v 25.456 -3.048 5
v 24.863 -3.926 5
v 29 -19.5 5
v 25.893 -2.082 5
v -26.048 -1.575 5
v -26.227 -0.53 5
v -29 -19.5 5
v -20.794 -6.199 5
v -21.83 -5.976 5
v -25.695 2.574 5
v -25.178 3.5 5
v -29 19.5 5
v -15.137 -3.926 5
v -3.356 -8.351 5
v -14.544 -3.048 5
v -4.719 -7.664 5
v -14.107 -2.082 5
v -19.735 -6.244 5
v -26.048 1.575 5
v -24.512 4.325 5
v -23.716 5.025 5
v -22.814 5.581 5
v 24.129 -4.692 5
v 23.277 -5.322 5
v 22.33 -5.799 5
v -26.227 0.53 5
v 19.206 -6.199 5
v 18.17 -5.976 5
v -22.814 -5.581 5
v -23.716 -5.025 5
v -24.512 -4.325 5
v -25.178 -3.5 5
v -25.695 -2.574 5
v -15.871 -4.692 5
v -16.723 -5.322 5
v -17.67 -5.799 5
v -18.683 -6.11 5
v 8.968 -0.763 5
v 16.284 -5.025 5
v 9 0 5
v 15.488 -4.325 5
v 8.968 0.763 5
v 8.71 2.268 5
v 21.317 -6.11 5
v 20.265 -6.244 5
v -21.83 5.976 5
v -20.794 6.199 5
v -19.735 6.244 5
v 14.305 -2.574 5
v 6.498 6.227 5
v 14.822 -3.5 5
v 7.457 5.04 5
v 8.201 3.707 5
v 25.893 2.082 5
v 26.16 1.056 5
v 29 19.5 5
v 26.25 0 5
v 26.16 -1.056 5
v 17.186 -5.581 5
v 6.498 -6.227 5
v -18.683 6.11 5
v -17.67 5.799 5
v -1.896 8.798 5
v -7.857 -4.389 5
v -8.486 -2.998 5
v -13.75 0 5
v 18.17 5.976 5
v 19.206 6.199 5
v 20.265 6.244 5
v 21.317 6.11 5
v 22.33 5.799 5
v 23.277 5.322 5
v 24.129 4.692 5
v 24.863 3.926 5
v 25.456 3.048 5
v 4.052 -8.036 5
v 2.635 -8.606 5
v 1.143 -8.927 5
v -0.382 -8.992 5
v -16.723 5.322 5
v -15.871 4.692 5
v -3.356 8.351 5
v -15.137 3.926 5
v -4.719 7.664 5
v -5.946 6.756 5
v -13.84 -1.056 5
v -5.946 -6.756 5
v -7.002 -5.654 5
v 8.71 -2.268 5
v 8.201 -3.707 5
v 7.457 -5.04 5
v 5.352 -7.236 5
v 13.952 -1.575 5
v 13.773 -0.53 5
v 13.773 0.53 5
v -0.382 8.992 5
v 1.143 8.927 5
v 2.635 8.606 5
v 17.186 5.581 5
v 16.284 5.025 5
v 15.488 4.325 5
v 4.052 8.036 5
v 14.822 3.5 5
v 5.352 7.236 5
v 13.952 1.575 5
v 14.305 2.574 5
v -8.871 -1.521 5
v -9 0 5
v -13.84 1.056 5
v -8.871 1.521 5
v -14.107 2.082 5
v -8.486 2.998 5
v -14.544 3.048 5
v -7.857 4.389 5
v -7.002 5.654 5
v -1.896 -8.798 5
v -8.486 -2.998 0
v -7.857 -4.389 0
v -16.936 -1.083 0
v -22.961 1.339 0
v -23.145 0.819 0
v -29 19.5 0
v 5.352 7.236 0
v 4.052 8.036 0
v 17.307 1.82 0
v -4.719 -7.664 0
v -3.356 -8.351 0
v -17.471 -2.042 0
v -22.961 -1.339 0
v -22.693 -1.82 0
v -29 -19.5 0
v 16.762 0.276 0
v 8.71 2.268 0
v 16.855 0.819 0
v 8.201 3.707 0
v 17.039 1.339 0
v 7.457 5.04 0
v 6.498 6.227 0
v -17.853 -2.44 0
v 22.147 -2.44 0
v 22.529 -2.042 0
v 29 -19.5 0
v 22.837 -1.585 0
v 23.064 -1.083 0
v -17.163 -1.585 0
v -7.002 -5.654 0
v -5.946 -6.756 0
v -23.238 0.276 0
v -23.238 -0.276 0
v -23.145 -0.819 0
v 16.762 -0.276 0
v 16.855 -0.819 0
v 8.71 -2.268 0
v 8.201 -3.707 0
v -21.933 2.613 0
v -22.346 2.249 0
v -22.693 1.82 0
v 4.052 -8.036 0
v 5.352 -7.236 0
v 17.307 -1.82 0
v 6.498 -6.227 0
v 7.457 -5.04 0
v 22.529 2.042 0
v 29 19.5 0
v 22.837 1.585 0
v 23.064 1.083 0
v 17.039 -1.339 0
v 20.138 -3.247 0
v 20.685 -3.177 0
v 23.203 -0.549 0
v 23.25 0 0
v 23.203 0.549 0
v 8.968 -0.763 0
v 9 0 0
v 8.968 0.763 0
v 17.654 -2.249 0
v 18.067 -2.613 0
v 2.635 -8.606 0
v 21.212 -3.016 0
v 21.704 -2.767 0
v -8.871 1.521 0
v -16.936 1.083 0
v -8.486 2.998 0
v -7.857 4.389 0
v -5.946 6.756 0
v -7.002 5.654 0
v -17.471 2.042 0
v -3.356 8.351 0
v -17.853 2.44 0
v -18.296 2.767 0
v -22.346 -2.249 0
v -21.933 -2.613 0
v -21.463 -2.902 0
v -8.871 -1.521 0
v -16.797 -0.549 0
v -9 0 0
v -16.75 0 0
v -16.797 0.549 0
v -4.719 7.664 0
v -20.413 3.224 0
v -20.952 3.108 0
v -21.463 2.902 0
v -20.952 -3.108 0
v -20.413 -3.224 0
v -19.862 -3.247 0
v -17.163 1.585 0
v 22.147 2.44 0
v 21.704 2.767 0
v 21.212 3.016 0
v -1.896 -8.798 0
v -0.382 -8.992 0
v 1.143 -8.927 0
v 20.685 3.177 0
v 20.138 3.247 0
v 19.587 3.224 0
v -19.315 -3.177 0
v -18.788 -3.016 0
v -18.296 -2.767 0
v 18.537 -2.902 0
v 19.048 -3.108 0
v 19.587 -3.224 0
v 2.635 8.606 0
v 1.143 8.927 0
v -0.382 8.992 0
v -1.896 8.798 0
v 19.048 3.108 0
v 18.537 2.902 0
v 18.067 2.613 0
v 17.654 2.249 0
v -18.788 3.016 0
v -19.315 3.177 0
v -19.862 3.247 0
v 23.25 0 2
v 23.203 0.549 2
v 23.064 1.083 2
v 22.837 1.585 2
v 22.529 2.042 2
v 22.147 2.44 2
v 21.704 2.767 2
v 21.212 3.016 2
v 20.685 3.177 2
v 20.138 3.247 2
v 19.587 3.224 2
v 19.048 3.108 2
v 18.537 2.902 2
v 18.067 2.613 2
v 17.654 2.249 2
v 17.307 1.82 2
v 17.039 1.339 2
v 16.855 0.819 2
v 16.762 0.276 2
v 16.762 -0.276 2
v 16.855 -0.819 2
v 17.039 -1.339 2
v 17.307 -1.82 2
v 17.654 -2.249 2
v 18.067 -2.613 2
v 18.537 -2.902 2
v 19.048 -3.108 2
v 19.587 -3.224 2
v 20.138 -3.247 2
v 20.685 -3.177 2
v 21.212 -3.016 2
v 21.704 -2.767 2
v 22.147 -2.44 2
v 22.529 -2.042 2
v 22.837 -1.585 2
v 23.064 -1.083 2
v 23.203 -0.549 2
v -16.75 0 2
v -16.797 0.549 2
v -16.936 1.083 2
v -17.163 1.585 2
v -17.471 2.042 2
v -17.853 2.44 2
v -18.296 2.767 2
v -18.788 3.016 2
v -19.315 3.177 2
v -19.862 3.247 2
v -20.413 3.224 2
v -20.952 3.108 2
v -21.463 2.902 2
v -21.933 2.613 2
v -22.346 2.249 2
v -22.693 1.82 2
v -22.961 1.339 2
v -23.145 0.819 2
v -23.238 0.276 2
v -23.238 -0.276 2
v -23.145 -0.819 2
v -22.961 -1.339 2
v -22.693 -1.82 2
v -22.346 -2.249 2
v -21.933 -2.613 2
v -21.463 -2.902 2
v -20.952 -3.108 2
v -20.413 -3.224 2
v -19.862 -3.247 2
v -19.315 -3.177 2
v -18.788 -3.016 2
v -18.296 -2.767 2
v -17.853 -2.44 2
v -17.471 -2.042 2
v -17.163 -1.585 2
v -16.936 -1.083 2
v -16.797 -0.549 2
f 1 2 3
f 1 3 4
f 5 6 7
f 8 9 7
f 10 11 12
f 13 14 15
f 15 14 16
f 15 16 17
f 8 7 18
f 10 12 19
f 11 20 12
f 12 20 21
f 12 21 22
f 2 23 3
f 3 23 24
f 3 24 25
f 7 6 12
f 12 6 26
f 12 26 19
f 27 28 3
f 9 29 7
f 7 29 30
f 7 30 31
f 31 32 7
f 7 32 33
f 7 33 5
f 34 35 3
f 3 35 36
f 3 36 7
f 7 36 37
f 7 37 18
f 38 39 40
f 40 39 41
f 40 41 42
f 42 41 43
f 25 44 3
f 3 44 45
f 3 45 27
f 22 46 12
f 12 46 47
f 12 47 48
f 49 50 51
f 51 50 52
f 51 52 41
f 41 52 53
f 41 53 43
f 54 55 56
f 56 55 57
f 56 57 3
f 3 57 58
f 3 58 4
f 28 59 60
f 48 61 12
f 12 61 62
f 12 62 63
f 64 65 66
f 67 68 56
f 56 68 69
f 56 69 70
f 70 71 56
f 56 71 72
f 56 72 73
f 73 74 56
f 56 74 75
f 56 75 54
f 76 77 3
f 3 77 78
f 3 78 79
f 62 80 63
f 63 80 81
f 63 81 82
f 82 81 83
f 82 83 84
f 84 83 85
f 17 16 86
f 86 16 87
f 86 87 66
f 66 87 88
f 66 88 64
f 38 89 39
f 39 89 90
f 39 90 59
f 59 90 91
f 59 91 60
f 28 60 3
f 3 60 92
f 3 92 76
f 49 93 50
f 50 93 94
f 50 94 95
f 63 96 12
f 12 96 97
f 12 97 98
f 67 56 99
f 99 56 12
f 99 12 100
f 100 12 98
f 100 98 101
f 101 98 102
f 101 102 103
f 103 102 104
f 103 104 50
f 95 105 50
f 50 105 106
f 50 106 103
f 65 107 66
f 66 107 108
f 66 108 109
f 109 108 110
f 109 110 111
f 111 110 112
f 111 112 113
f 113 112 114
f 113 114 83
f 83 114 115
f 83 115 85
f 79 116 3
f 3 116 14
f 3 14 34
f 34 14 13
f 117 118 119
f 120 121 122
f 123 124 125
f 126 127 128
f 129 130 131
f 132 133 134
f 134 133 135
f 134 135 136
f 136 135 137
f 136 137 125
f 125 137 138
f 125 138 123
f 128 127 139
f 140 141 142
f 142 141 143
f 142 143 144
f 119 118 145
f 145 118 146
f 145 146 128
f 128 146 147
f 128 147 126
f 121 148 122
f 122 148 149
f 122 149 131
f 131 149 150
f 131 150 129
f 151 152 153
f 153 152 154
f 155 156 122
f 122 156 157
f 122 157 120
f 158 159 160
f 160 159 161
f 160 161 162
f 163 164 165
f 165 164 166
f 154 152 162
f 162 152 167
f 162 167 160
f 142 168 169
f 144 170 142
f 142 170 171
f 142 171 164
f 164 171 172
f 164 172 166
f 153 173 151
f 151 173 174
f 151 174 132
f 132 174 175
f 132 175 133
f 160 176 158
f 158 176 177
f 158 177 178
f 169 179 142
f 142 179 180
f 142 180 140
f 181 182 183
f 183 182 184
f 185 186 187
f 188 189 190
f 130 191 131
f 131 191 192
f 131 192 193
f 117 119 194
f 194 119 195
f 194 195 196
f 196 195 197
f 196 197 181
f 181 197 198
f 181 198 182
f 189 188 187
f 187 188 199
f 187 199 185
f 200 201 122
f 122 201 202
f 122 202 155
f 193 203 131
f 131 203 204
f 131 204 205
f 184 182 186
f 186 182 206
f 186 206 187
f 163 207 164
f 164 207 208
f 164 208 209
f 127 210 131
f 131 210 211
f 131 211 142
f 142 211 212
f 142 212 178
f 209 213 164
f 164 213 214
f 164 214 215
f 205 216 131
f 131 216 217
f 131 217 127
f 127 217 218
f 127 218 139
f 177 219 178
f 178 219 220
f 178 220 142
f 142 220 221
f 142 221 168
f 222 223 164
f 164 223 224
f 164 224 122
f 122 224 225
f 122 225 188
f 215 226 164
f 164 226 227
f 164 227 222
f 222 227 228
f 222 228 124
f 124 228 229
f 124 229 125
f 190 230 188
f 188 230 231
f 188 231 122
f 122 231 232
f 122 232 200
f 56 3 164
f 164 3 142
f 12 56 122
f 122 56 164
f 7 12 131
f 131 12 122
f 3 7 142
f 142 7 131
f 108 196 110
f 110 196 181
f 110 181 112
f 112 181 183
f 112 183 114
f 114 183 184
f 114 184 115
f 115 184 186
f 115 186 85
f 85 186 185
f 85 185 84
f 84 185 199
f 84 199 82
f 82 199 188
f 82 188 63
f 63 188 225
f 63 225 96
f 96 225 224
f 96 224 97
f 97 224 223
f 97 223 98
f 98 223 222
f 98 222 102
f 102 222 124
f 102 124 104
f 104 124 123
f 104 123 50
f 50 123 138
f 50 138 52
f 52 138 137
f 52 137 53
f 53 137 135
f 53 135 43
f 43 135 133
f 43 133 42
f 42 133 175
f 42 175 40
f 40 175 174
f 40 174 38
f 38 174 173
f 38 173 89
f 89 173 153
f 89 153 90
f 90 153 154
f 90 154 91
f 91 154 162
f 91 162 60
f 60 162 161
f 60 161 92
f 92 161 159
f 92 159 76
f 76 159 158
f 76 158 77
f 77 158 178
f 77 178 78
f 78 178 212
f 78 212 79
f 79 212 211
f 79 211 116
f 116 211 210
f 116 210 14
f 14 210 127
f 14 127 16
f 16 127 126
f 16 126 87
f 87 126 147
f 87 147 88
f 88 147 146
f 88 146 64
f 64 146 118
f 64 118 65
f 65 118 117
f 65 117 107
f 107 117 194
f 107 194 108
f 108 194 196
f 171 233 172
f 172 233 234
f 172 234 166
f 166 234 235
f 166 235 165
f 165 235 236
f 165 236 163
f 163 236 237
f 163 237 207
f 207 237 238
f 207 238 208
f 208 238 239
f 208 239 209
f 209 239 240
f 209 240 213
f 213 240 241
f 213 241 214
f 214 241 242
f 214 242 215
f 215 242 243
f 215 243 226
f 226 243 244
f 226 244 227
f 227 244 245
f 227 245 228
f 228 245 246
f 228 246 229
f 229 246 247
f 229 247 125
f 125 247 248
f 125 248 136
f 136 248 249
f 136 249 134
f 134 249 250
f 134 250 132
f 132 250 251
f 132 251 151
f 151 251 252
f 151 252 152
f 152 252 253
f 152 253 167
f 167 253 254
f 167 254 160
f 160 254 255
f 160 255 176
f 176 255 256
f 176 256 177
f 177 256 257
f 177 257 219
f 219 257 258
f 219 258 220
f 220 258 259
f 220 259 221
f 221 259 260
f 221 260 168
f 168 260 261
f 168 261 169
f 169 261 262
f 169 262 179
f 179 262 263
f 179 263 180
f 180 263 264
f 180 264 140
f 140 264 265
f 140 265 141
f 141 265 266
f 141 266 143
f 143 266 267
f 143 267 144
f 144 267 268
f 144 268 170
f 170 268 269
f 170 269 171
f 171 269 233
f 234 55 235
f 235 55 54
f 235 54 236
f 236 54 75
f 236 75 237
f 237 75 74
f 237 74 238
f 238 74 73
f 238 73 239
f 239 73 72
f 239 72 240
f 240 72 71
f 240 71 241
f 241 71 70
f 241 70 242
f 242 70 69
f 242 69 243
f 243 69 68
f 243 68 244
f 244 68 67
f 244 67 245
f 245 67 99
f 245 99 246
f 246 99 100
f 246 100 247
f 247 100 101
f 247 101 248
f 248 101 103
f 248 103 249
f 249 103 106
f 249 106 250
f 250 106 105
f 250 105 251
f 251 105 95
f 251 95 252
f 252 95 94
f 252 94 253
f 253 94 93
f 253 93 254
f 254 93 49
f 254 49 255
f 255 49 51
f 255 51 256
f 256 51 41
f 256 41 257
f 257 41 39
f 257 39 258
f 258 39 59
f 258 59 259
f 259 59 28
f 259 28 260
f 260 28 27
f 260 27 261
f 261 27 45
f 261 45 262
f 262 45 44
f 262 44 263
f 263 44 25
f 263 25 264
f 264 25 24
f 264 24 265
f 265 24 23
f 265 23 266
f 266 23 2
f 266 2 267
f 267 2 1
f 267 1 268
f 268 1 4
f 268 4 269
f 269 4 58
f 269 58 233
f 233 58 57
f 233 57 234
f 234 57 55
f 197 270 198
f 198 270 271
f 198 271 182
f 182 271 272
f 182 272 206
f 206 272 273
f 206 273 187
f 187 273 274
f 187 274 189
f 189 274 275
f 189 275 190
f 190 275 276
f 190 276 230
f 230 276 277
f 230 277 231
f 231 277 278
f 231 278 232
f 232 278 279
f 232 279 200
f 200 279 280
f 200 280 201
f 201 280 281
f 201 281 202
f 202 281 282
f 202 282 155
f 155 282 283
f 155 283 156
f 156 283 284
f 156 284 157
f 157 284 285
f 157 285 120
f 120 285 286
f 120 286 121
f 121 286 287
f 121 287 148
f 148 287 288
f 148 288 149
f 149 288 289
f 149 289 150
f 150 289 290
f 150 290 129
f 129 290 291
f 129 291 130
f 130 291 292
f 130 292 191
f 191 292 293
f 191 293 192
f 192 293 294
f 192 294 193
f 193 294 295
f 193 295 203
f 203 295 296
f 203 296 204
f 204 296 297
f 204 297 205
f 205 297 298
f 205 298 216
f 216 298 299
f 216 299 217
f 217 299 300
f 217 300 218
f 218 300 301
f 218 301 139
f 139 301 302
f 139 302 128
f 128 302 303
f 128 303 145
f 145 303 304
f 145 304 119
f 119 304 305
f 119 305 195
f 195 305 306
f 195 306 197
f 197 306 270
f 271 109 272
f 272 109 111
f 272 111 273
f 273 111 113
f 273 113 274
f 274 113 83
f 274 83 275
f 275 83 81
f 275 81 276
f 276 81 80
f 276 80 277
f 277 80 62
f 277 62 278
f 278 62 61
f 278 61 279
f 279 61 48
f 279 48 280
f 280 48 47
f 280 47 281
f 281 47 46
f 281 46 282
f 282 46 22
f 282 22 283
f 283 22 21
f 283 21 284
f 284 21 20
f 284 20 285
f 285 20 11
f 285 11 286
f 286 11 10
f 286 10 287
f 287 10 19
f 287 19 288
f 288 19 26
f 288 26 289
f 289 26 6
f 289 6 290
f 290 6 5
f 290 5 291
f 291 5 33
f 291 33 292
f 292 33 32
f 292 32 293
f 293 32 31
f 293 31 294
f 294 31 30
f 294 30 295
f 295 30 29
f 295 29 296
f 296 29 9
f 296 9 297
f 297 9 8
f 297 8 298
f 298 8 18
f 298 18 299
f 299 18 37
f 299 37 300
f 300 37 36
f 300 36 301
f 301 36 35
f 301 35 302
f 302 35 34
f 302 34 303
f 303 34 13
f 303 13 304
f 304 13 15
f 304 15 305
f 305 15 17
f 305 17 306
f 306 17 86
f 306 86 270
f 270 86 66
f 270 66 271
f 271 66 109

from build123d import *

# Parameters (mm, degrees)
ESQUISSE1_W                = 58
ESQUISSE1_H                = 39
ESQUISSE1_R                = 9
BOSS_EXTRU_1_DEPTH         = 5
R_P_TITION_LIN_AIRE1_COUNT = 2
R_P_TITION_LIN_AIRE1_PITCH = 40


with BuildPart() as part:
    # Esquisse1 → Boss.-Extru.1 (new body)
    with BuildSketch(Plane.XY):
        Rectangle(ESQUISSE1_W, ESQUISSE1_H)
        Circle(ESQUISSE1_R, mode=Mode.SUBTRACT)
    extrude(amount=BOSS_EXTRU_1_DEPTH)

    # Esquisse3 → Fraisage pour vis à tête fraisée à 6 pans creux M61 (revolve, cut)
    with BuildSketch(Plane(origin=(20, 0, 5), x_dir=(0, -1, 0), z_dir=(1, 0, 0))):
        Polygon((0, 0), (0, 5), (3.25, 5), (3.25, 3), (6.25, 0), align=None)
    fraisage_pour_vis_t_te_frais_e_6_pan = revolve(axis=Axis((20, 0, 11.35), (0, 0, -1)), mode=Mode.SUBTRACT)

    # Répétition linéaire1: Fraisage pour vis à tête fraisée à 6 pans creux M61 ×2
    with Locations(*[(-i * R_P_TITION_LIN_AIRE1_PITCH, 0, 0) for i in range(1, R_P_TITION_LIN_AIRE1_COUNT)]):
        add(fraisage_pour_vis_t_te_frais_e_6_pan, mode=Mode.SUBTRACT)


solid = part.part
